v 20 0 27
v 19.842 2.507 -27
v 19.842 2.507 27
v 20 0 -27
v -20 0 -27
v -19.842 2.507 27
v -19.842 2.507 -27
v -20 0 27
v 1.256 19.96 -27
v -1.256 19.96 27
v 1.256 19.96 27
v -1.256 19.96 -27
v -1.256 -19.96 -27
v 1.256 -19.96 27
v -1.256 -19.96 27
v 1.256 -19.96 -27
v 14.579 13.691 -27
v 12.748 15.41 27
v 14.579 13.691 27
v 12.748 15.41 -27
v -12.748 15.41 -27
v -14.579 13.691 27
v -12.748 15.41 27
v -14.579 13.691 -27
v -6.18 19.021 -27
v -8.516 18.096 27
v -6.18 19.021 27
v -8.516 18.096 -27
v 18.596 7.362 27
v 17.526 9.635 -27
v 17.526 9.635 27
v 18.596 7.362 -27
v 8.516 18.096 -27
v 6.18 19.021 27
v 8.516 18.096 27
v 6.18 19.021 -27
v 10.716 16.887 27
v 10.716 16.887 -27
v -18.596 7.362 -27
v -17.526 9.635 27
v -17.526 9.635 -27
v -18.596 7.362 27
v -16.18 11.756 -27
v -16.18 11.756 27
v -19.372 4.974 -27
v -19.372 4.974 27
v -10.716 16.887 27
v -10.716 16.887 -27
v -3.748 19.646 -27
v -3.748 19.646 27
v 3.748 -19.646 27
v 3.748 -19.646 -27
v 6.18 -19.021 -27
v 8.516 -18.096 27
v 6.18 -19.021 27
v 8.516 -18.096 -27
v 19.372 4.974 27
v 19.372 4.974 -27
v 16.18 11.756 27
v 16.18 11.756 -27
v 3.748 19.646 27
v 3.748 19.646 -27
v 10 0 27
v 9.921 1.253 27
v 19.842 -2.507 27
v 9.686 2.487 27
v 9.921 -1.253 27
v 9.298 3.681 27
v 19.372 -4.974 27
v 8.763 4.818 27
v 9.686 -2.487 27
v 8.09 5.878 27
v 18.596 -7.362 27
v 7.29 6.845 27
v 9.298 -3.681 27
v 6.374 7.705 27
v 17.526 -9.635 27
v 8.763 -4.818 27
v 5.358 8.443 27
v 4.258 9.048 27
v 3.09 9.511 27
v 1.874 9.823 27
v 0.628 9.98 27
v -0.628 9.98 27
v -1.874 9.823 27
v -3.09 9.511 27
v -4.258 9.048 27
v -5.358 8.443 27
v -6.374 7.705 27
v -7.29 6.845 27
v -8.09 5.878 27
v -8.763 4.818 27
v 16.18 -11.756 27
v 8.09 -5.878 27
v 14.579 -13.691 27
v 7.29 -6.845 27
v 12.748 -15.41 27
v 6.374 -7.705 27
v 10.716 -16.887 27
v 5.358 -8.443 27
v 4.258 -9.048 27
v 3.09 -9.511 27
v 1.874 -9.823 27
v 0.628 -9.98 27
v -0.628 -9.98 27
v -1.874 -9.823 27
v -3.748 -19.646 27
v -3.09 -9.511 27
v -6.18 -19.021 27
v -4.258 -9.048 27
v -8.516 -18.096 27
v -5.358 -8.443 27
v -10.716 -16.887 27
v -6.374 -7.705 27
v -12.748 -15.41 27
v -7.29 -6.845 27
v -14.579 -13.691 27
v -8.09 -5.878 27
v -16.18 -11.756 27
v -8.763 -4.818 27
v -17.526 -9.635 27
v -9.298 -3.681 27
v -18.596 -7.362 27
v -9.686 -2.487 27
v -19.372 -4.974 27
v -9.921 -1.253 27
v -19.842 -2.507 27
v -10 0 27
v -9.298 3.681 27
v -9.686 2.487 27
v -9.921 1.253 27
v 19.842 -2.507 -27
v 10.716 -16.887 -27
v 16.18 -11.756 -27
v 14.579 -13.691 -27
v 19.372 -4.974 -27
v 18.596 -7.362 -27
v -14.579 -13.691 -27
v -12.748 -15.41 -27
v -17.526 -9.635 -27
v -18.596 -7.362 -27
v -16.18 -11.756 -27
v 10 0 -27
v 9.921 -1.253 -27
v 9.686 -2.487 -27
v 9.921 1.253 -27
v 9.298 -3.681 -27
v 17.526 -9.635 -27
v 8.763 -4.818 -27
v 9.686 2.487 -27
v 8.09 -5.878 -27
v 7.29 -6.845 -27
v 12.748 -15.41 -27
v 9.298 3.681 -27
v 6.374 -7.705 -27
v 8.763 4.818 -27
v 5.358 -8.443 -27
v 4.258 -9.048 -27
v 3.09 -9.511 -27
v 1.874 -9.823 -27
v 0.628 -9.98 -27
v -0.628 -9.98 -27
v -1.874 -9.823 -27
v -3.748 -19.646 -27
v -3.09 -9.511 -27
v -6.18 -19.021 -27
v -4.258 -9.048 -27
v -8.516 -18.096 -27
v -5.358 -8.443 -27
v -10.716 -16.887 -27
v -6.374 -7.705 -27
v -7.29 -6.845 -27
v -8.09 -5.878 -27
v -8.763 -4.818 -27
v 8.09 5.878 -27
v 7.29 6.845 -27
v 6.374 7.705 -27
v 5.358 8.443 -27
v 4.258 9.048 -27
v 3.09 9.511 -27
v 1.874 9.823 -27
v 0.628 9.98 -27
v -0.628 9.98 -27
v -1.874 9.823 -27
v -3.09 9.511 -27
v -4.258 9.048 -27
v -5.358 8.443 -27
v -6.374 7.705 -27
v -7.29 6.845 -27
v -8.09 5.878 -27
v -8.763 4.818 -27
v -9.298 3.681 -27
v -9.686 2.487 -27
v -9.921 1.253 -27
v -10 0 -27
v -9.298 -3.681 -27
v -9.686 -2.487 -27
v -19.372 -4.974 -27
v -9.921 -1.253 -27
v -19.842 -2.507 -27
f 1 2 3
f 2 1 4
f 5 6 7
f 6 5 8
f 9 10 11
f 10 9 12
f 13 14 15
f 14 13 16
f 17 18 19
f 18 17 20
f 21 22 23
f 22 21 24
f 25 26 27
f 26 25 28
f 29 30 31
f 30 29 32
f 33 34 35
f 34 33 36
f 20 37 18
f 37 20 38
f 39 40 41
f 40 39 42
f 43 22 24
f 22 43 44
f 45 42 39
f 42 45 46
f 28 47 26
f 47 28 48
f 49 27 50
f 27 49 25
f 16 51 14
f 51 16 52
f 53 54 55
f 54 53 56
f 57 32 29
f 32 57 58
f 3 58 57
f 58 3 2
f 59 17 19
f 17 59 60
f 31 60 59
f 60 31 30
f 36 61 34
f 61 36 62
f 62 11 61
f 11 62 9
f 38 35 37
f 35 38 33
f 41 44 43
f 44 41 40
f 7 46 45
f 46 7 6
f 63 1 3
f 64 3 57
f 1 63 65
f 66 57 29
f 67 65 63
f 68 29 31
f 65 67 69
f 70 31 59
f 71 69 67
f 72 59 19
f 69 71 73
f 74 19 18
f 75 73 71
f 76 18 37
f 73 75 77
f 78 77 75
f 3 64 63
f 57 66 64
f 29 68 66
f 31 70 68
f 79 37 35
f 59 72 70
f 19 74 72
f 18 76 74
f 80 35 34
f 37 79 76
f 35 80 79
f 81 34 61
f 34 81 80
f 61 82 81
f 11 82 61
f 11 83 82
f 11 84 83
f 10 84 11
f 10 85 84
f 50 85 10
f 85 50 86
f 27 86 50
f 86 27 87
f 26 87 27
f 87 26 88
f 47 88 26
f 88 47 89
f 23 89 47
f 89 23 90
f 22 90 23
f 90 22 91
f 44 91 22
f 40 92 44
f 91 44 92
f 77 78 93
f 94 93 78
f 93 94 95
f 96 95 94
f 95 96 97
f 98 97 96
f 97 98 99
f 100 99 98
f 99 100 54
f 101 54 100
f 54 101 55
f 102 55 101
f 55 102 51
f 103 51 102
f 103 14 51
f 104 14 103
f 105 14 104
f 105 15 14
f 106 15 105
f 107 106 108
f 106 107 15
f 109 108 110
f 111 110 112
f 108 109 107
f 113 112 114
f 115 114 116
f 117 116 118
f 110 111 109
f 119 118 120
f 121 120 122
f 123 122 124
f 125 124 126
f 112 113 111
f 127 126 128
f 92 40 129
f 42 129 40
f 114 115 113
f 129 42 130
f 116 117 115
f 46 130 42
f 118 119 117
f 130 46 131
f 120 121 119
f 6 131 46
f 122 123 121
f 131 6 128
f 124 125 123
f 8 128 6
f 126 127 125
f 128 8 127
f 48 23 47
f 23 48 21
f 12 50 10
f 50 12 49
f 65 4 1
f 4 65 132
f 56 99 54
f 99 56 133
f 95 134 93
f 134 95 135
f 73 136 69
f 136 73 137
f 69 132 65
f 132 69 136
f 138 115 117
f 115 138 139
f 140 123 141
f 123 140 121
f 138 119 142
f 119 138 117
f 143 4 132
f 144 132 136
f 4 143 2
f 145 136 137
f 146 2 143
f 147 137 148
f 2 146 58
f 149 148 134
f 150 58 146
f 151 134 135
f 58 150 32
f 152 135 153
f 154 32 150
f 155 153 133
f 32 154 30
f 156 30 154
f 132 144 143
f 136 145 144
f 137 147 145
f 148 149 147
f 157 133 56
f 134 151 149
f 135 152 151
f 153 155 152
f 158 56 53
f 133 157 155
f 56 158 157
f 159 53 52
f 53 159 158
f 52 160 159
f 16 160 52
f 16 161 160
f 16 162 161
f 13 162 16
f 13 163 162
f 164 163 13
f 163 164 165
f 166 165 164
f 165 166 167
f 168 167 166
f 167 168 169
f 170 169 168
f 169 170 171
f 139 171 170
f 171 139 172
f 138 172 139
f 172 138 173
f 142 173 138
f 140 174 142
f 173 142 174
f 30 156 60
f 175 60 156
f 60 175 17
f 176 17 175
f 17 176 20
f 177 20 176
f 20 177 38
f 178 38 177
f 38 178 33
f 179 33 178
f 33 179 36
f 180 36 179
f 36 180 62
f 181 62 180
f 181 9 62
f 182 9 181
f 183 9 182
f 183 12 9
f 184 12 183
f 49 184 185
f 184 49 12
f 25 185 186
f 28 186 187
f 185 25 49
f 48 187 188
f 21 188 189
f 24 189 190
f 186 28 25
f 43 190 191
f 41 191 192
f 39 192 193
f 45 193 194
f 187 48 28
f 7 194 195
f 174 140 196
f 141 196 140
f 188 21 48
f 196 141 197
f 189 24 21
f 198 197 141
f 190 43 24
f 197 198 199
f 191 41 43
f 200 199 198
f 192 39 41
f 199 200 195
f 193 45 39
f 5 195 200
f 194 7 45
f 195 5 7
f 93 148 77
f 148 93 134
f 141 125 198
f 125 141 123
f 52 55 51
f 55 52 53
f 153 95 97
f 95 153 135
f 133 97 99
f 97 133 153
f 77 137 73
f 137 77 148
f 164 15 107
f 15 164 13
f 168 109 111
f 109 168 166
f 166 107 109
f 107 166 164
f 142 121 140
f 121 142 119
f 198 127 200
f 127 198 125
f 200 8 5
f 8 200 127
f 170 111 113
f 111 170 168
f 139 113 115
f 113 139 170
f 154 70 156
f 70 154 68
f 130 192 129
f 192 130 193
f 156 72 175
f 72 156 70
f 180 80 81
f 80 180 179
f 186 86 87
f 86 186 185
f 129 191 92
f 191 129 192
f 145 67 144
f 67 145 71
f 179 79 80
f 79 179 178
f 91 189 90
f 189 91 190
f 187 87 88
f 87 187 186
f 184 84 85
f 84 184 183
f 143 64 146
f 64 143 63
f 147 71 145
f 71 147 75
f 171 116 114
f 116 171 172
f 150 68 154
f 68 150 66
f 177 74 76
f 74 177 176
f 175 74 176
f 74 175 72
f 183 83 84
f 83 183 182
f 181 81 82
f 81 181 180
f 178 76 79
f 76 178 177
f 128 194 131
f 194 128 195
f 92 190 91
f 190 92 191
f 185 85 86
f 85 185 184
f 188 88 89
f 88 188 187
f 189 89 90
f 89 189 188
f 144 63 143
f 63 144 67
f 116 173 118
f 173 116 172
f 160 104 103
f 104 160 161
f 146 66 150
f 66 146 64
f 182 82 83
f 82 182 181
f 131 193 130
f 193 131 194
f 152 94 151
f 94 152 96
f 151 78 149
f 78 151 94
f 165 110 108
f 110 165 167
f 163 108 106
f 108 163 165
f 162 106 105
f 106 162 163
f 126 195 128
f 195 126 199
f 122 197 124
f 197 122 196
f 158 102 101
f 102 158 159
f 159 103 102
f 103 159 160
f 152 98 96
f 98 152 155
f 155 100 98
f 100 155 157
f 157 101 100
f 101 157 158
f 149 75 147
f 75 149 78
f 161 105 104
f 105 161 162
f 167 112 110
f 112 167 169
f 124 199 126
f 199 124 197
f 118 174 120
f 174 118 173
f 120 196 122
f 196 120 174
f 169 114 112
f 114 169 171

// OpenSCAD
$fn = 50;


difference() {
	union() {
		translate(v = [0, 0, -27.0000000000]) {
			cylinder(h = 54, r = 20.0000000000);
		}
	}
	union() {
		translate(v = [0, 0, -100.0000000000]) {
			cylinder(h = 200, r = 10);
		}
	}
}
